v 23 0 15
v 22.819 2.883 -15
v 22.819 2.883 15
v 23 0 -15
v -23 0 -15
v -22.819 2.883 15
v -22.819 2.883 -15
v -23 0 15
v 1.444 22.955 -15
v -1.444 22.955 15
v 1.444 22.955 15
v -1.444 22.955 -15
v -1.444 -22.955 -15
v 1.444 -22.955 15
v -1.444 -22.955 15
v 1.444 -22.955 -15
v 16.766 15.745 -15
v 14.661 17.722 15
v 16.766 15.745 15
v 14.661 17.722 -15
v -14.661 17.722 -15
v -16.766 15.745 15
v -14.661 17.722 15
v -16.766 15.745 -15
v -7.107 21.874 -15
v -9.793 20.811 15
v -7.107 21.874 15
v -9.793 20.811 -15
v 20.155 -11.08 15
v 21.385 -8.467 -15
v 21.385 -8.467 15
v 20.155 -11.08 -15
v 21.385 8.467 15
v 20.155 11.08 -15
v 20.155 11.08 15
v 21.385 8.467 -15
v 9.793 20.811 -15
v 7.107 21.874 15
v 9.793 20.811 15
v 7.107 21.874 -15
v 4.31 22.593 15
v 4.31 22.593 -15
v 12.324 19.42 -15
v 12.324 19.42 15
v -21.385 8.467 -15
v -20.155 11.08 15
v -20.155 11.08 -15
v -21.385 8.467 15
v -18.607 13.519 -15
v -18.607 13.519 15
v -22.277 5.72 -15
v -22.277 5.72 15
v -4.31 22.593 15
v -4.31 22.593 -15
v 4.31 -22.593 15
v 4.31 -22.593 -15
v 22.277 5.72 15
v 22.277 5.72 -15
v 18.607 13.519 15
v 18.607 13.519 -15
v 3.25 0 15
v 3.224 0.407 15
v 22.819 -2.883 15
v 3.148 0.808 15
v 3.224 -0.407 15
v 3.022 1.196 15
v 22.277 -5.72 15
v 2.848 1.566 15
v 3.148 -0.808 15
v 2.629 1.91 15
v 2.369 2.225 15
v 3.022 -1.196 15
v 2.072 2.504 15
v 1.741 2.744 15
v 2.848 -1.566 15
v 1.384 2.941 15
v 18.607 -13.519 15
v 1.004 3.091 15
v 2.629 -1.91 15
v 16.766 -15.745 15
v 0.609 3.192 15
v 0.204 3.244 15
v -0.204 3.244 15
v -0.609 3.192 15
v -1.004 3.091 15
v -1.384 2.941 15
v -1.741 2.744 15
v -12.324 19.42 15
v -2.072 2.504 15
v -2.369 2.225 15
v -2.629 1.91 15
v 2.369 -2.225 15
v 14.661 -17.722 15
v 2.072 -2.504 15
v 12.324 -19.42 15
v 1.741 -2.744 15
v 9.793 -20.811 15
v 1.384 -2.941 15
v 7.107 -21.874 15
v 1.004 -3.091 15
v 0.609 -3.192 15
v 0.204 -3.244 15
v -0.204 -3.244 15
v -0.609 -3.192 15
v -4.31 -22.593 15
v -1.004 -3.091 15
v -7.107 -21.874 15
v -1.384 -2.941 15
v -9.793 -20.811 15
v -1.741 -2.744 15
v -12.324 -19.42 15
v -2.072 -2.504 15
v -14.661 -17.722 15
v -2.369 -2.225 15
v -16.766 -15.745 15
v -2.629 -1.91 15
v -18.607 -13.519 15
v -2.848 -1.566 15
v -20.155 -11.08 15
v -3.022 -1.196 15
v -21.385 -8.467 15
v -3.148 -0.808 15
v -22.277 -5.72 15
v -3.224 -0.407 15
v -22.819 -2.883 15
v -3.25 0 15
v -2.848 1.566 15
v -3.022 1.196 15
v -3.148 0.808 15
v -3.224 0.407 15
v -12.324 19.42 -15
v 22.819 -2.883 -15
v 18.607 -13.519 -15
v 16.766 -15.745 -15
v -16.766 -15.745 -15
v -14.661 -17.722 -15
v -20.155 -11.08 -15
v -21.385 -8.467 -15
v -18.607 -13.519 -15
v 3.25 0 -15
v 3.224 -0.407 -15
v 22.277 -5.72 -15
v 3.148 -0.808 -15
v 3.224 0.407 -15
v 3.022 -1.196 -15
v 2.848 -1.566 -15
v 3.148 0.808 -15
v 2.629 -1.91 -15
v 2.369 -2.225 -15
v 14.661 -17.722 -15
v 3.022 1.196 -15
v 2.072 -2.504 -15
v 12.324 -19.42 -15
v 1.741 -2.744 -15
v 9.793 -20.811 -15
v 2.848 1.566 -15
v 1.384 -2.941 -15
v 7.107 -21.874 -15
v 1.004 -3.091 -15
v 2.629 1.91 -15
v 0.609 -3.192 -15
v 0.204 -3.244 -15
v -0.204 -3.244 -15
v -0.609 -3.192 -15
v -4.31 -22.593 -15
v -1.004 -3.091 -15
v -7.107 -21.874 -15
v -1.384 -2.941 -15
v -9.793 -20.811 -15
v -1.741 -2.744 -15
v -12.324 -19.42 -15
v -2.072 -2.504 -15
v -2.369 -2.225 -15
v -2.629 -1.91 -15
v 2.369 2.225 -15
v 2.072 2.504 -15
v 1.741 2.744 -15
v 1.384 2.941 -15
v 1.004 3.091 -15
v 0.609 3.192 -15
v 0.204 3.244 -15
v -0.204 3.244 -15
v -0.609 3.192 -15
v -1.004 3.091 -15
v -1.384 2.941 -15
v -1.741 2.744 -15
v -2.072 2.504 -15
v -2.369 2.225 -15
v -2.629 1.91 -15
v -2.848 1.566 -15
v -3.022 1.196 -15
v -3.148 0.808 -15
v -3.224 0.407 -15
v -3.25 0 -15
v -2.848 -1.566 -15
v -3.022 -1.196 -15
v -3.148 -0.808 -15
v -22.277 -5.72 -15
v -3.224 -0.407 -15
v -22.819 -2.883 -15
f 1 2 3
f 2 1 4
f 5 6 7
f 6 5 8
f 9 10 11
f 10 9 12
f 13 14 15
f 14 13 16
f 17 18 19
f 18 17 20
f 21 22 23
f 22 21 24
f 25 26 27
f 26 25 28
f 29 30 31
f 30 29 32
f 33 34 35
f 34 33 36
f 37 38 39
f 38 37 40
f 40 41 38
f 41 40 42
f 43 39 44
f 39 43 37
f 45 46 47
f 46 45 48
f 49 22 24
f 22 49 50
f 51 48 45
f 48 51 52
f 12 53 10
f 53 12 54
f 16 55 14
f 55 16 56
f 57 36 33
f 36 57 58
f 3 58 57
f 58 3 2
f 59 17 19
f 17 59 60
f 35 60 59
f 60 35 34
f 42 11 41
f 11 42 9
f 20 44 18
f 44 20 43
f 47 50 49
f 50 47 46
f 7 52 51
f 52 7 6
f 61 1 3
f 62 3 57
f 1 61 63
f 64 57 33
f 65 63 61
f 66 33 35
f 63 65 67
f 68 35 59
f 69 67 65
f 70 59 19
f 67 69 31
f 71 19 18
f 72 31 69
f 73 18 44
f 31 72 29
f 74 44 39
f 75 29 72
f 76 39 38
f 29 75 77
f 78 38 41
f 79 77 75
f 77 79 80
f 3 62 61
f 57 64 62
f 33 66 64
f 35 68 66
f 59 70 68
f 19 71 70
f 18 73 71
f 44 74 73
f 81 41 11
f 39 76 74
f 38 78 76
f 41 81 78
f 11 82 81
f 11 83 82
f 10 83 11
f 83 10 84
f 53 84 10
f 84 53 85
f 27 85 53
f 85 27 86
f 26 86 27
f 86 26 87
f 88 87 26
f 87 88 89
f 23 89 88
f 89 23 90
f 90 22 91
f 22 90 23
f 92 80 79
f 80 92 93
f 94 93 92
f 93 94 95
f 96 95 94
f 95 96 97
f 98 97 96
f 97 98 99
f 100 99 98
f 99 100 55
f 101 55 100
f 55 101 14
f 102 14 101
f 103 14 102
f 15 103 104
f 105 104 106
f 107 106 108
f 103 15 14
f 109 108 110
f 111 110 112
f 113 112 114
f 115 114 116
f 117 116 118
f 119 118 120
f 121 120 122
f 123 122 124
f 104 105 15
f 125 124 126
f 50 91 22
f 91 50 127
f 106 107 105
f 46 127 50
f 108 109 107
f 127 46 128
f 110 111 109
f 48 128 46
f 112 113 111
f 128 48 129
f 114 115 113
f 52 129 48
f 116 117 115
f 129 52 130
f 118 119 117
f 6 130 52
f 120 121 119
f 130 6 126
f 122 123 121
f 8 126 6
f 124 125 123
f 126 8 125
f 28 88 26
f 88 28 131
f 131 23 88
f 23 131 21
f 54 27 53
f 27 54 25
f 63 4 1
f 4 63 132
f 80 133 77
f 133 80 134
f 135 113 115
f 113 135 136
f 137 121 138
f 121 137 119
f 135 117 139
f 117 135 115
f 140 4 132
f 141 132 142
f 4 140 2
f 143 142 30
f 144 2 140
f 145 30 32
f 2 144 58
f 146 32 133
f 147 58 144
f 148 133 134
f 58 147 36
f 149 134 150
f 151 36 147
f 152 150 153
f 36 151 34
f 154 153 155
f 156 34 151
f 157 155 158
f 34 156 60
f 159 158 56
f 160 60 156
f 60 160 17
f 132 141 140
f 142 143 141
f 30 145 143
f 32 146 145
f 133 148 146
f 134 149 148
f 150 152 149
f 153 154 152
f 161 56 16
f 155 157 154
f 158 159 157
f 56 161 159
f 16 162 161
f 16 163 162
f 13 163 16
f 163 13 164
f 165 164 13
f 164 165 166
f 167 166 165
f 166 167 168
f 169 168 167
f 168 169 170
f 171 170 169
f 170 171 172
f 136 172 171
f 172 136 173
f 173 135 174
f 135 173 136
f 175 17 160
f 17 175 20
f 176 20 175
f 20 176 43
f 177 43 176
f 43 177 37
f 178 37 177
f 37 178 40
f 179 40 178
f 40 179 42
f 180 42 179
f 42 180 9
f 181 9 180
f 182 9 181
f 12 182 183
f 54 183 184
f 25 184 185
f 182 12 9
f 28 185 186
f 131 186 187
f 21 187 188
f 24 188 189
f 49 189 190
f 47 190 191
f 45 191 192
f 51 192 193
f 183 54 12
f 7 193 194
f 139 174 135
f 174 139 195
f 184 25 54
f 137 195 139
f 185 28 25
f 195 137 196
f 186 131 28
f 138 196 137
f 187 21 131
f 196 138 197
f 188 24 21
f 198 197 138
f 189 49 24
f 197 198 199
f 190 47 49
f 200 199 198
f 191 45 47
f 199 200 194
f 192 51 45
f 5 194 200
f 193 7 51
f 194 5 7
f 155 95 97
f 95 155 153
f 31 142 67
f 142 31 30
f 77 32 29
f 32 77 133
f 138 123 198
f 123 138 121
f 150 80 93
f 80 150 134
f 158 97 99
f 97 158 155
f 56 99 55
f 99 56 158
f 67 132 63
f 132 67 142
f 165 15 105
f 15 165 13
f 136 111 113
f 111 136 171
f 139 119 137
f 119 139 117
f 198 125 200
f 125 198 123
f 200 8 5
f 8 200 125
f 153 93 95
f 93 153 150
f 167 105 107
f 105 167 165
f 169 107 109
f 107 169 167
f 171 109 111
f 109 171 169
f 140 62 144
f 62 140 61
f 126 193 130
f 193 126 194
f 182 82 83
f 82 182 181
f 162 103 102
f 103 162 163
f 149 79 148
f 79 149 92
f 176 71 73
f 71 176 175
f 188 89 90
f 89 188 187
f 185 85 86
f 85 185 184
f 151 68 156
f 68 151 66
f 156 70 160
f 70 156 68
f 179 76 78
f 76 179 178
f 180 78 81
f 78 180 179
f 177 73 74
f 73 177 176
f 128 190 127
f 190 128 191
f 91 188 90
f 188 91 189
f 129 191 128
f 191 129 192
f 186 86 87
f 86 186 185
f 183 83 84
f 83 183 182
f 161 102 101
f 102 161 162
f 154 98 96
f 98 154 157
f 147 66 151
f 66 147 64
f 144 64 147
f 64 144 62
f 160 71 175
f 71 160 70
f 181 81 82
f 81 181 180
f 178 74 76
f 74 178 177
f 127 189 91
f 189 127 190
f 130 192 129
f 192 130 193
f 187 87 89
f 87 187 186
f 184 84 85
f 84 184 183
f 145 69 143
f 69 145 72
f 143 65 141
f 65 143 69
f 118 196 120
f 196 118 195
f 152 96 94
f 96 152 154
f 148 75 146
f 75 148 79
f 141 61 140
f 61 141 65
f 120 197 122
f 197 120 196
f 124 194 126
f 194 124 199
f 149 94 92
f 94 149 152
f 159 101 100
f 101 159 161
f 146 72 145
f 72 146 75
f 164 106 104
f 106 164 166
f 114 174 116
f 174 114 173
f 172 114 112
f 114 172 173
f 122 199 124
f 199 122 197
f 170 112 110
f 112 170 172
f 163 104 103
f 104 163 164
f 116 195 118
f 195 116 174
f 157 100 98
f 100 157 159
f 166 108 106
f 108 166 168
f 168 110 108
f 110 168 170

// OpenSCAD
$fn = 50;


difference() {
	union() {
		translate(v = [0, 0, -15.0000000000]) {
			cylinder(h = 30, r = 23.0000000000);
		}
	}
	union() {
		translate(v = [0, 0, -100.0000000000]) {
			cylinder(h = 200, r = 3.2500000000);
		}
	}
}
